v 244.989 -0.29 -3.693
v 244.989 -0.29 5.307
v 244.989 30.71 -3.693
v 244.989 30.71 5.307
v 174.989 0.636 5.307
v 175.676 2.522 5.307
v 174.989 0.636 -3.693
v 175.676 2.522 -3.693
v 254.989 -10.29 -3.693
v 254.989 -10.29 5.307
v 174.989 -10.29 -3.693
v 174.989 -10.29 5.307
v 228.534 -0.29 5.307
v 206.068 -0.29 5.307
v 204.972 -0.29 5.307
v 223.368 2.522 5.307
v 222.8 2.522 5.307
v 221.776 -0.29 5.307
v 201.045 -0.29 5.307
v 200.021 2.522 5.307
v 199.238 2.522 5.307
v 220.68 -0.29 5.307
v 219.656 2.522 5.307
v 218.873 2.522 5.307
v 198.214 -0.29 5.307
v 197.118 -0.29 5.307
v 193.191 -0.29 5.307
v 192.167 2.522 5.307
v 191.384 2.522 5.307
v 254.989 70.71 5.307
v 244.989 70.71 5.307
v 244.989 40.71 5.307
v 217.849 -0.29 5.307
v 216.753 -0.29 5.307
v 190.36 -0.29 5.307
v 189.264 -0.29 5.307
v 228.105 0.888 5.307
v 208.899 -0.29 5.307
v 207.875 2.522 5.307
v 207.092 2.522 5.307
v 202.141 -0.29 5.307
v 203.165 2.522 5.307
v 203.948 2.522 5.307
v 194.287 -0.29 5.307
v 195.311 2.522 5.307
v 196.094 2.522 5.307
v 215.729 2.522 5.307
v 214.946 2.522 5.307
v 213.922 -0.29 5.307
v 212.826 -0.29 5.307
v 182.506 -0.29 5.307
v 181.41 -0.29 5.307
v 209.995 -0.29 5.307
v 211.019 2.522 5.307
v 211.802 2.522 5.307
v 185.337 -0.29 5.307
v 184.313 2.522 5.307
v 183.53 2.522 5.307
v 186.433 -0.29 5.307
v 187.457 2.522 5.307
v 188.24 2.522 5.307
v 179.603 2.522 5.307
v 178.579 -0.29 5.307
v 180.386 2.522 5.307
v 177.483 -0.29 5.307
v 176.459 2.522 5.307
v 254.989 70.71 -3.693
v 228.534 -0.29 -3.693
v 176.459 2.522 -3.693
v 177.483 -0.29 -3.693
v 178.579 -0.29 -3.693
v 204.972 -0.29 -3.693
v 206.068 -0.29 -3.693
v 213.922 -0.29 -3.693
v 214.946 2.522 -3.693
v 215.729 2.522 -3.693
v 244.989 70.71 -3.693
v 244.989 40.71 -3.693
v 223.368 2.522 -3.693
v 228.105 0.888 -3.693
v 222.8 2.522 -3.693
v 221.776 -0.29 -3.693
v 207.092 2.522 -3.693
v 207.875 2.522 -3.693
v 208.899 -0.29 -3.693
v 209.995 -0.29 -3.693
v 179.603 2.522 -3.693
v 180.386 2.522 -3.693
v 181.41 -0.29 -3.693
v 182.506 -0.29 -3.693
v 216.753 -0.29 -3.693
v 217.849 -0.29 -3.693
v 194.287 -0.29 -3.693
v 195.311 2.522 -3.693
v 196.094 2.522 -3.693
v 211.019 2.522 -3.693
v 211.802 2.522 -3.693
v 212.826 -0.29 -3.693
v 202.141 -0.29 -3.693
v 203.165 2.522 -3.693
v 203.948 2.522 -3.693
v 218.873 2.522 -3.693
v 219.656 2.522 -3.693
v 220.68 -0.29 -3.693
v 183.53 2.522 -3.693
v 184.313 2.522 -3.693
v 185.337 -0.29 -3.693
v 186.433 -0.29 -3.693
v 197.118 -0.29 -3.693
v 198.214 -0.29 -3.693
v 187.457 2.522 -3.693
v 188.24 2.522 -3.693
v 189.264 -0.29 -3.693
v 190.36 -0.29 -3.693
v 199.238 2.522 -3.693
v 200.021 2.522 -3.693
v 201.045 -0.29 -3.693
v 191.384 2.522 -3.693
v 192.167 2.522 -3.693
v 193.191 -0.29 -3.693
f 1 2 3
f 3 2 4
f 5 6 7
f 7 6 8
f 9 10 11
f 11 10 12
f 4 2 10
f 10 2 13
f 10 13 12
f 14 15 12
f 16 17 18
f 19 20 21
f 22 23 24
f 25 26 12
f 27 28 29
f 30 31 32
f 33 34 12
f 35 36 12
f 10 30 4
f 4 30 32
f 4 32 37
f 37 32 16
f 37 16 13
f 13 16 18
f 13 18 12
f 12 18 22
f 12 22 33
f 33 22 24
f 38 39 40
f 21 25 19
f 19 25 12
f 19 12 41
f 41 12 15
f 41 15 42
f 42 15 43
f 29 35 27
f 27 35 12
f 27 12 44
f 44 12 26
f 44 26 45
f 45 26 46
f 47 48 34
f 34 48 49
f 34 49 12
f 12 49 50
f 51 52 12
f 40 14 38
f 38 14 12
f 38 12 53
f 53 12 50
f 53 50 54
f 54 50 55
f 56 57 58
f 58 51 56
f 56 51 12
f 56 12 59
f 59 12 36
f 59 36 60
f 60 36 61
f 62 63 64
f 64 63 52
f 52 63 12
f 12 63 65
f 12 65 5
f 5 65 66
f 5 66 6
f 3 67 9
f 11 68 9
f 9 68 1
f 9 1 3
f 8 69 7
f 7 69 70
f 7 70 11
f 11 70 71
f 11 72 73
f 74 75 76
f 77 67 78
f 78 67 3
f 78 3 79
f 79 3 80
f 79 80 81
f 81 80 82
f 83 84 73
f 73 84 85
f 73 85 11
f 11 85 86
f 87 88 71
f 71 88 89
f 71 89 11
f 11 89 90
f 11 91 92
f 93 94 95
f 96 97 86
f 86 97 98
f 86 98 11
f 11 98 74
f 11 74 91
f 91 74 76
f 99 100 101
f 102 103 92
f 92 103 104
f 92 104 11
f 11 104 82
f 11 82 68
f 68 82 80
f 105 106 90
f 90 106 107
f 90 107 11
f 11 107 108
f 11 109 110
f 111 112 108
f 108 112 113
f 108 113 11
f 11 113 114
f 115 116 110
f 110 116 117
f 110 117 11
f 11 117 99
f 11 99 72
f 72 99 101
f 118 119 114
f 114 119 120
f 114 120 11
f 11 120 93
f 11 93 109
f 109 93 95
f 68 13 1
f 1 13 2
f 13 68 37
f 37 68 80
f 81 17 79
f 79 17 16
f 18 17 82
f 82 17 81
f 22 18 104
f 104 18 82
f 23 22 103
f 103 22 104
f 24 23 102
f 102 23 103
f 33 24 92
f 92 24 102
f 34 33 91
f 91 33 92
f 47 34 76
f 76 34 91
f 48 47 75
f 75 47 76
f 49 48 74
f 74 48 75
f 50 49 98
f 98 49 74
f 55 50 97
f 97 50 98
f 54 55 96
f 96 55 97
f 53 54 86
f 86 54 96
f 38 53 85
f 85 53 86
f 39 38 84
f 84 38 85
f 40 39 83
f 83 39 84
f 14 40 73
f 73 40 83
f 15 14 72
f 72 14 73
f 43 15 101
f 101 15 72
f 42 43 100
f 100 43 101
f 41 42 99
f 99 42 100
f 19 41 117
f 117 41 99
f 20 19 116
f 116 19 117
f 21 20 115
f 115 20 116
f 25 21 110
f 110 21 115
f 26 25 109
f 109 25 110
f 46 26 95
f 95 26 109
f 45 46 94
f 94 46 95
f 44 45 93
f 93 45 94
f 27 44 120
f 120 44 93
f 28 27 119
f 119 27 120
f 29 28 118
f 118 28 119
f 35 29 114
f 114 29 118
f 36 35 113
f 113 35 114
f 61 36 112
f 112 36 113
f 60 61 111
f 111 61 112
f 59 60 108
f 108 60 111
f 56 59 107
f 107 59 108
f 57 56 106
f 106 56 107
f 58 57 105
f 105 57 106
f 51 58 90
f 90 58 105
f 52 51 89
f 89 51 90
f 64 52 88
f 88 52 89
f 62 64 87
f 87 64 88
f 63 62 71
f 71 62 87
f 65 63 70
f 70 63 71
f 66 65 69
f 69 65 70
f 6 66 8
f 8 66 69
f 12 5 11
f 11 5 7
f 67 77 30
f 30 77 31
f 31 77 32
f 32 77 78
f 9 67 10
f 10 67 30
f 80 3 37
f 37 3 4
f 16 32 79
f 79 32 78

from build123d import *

# Parameters (mm, degrees)
BOSS_EXTRUDE1_DEPTH      = 9
CUT_EXTRUDE3_START       = -75
SKETCH4_W                = 9
SKETCH4_H                = 12.8125
CUT_EXTRUDE3_DEPTH       = 426.134035175
BOSS_EXTRUDE2_DEPTH      = 5
BOSS_EXTRUDE2_DEPTH_BACK = 5
SKETCH5_W                = 9
SKETCH5_H                = 81
BOSS_EXTRUDE3_DEPTH      = 9
CUT_EXTRUDE4_DEPTH       = 10


with BuildPart() as part:
    # Sketch1 → Boss-Extrude1 (new body)
    with BuildSketch(Plane(origin=(0, 0, -3.69297844), x_dir=(-1, 0, 0), z_dir=(0, 0, -1))):
        Polygon((-247.145212992, 2.522278293), (-248.168879276, -0.290221707), (-249.2649677, -0.290221707), (-249.9890903, 1.699288787), (-249.9890903, -10.290221707), (250.0109097, -10.290221707), (250.0109097, -0.290221707), (249.462865488, -0.290221707), (248.439199204, 2.522278293), (247.655629383, 2.522278293), (246.631963099, -0.290221707), (245.535874675, -0.290221707), (244.512208391, 2.522278293), (243.728638571, 2.522278293), (242.704972287, -0.290221707), (241.608883863, -0.290221707), (240.585217579, 2.522278293), (239.801647758, 2.522278293), (238.777981474, -0.290221707), (237.68189305, -0.290221707), (236.658226766, 2.522278293), (235.874656946, 2.522278293), (234.850990662, -0.290221707), (233.754902238, -0.290221707), (232.731235954, 2.522278293), (231.947666133, 2.522278293), (230.923999849, -0.290221707), (229.827911425, -0.290221707), (228.804245141, 2.522278293), (228.020675321, 2.522278293), (226.997009037, -0.290221707), (225.900920613, -0.290221707), (224.877254329, 2.522278293), (224.093684508, 2.522278293), (223.070018224, -0.290221707), (221.9739298, -0.290221707), (220.950263516, 2.522278293), (220.166693696, 2.522278293), (219.143027412, -0.290221707), (218.046938988, -0.290221707), (217.023272704, 2.522278293), (216.239702883, 2.522278293), (215.216036599, -0.290221707), (214.119948175, -0.290221707), (213.096281891, 2.522278293), (212.312712071, 2.522278293), (211.289045787, -0.290221707), (210.192957363, -0.290221707), (209.169291079, 2.522278293), (208.385721258, 2.522278293), (207.362054974, -0.290221707), (206.26596655, -0.290221707), (205.242300266, 2.522278293), (204.458730446, 2.522278293), (203.435064162, -0.290221707), (202.338975738, -0.290221707), (201.315309454, 2.522278293), (200.531739633, 2.522278293), (199.508073349, -0.290221707), (198.411984925, -0.290221707), (197.388318641, 2.522278293), (196.604748821, 2.522278293), (195.581082537, -0.290221707), (194.484994113, -0.290221707), (193.461327829, 2.522278293), (192.677758008, 2.522278293), (191.654091724, -0.290221707), (190.5580033, -0.290221707), (189.534337016, 2.522278293), (188.750767196, 2.522278293), (187.727100912, -0.290221707), (186.631012488, -0.290221707), (185.607346204, 2.522278293), (184.823776383, 2.522278293), (183.800110099, -0.290221707), (182.704021675, -0.290221707), (181.680355391, 2.522278293), (180.896785571, 2.522278293), (179.873119287, -0.290221707), (178.777030863, -0.290221707), (177.753364579, 2.522278293), (176.969794758, 2.522278293), (175.946128474, -0.290221707), (174.85004005, -0.290221707), (173.826373766, 2.522278293), (173.042803946, 2.522278293), (172.019137662, -0.290221707), (170.923049238, -0.290221707), (169.899382954, 2.522278293), (169.115813133, 2.522278293), (168.092146849, -0.290221707), (166.996058425, -0.290221707), (165.972392141, 2.522278293), (165.188822321, 2.522278293), (164.165156037, -0.290221707), (163.069067613, -0.290221707), (162.045401329, 2.522278293), (161.261831508, 2.522278293), (160.238165224, -0.290221707), (159.1420768, -0.290221707), (158.118410516, 2.522278293), (157.334840696, 2.522278293), (156.311174412, -0.290221707), (155.215085988, -0.290221707), (154.191419704, 2.522278293), (153.407849883, 2.522278293), (152.384183599, -0.290221707), (151.288095175, -0.290221707), (150.264428891, 2.522278293), (149.480859071, 2.522278293), (148.457192787, -0.290221707), (147.361104363, -0.290221707), (146.337438079, 2.522278293), (145.553868258, 2.522278293), (144.530201974, -0.290221707), (143.43411355, -0.290221707), (142.410447266, 2.522278293), (141.626877446, 2.522278293), (140.603211162, -0.290221707), (139.507122738, -0.290221707), (138.483456454, 2.522278293), (137.699886633, 2.522278293), (136.676220349, -0.290221707), (135.580131925, -0.290221707), (134.556465641, 2.522278293), (133.772895821, 2.522278293), (132.749229537, -0.290221707), (131.653141113, -0.290221707), (130.629474829, 2.522278293), (129.845905008, 2.522278293), (128.822238724, -0.290221707), (127.7261503, -0.290221707), (126.702484016, 2.522278293), (125.918914196, 2.522278293), (124.895247912, -0.290221707), (123.799159488, -0.290221707), (122.775493204, 2.522278293), (121.991923383, 2.522278293), (120.968257099, -0.290221707), (119.872168675, -0.290221707), (118.848502391, 2.522278293), (118.064932571, 2.522278293), (117.041266287, -0.290221707), (115.945177863, -0.290221707), (114.921511579, 2.522278293), (114.137941758, 2.522278293), (113.114275474, -0.290221707), (112.01818705, -0.290221707), (110.994520766, 2.522278293), (110.210950946, 2.522278293), (109.187284662, -0.290221707), (108.091196238, -0.290221707), (107.067529954, 2.522278293), (106.283960133, 2.522278293), (105.260293849, -0.290221707), (104.164205425, -0.290221707), (103.140539141, 2.522278293), (102.356969321, 2.522278293), (101.333303037, -0.290221707), (100.237214613, -0.290221707), (99.213548329, 2.522278293), (98.429978508, 2.522278293), (97.406312224, -0.290221707), (96.3102238, -0.290221707), (95.286557516, 2.522278293), (94.502987696, 2.522278293), (93.479321412, -0.290221707), (92.383232988, -0.290221707), (91.359566704, 2.522278293), (90.575996883, 2.522278293), (89.552330599, -0.290221707), (88.456242175, -0.290221707), (87.432575891, 2.522278293), (86.649006071, 2.522278293), (85.625339787, -0.290221707), (84.529251363, -0.290221707), (83.505585079, 2.522278293), (82.722015258, 2.522278293), (81.698348974, -0.290221707), (80.60226055, -0.290221707), (79.578594266, 2.522278293), (78.795024446, 2.522278293), (77.771358162, -0.290221707), (76.675269738, -0.290221707), (75.651603454, 2.522278293), (74.868033633, 2.522278293), (73.844367349, -0.290221707), (72.748278925, -0.290221707), (71.724612641, 2.522278293), (70.941042821, 2.522278293), (69.917376537, -0.290221707), (68.821288113, -0.290221707), (67.797621829, 2.522278293), (67.014052008, 2.522278293), (65.990385724, -0.290221707), (64.8942973, -0.290221707), (63.870631016, 2.522278293), (63.087061196, 2.522278293), (62.063394912, -0.290221707), (60.967306488, -0.290221707), (59.943640204, 2.522278293), (59.160070383, 2.522278293), (58.136404099, -0.290221707), (57.040315675, -0.290221707), (56.016649391, 2.522278293), (55.233079571, 2.522278293), (54.209413287, -0.290221707), (53.113324863, -0.290221707), (52.089658579, 2.522278293), (51.306088758, 2.522278293), (50.282422474, -0.290221707), (49.18633405, -0.290221707), (48.162667766, 2.522278293), (47.379097946, 2.522278293), (46.355431662, -0.290221707), (45.259343238, -0.290221707), (44.235676954, 2.522278293), (43.452107133, 2.522278293), (42.428440849, -0.290221707), (41.332352425, -0.290221707), (40.308686141, 2.522278293), (39.525116321, 2.522278293), (38.501450037, -0.290221707), (37.405361613, -0.290221707), (36.381695329, 2.522278293), (35.598125508, 2.522278293), (34.574459224, -0.290221707), (33.4783708, -0.290221707), (32.454704516, 2.522278293), (31.671134696, 2.522278293), (30.647468412, -0.290221707), (29.551379988, -0.290221707), (28.527713704, 2.522278293), (27.744143883, 2.522278293), (26.720477599, -0.290221707), (25.624389175, -0.290221707), (24.600722891, 2.522278293), (23.817153071, 2.522278293), (22.793486787, -0.290221707), (21.697398363, -0.290221707), (20.673732079, 2.522278293), (19.890162258, 2.522278293), (18.866495974, -0.290221707), (17.77040755, -0.290221707), (16.746741266, 2.522278293), (15.963171446, 2.522278293), (14.939505162, -0.290221707), (13.843416738, -0.290221707), (12.819750454, 2.522278293), (12.036180633, 2.522278293), (11.012514349, -0.290221707), (9.916425925, -0.290221707), (8.892759641, 2.522278293), (8.109189821, 2.522278293), (7.085523537, -0.290221707), (5.989435113, -0.290221707), (4.965768829, 2.522278293), (4.182199008, 2.522278293), (3.158532724, -0.290221707), (2.0624443, -0.290221707), (1.038778016, 2.522278293), (0.255208196, 2.522278293), (-0.768458088, -0.290221707), (-1.864546512, -0.290221707), (-2.888212796, 2.522278293), (-3.671782617, 2.522278293), (-4.695448901, -0.290221707), (-5.791537325, -0.290221707), (-6.815203609, 2.522278293), (-7.598773429, 2.522278293), (-8.622439713, -0.290221707), (-9.718528137, -0.290221707), (-10.742194421, 2.522278293), (-11.525764242, 2.522278293), (-12.549430526, -0.290221707), (-13.64551895, -0.290221707), (-14.669185234, 2.522278293), (-15.452755054, 2.522278293), (-16.476421338, -0.290221707), (-17.572509762, -0.290221707), (-18.596176046, 2.522278293), (-19.379745867, 2.522278293), (-20.403412151, -0.290221707), (-21.499500575, -0.290221707), (-22.523166859, 2.522278293), (-23.306736679, 2.522278293), (-24.330402963, -0.290221707), (-25.426491387, -0.290221707), (-26.450157671, 2.522278293), (-27.233727492, 2.522278293), (-28.257393776, -0.290221707), (-29.3534822, -0.290221707), (-30.377148484, 2.522278293), (-31.160718304, 2.522278293), (-32.184384588, -0.290221707), (-33.280473012, -0.290221707), (-34.304139296, 2.522278293), (-35.087709117, 2.522278293), (-36.111375401, -0.290221707), (-37.207463825, -0.290221707), (-38.231130109, 2.522278293), (-39.014699929, 2.522278293), (-40.038366213, -0.290221707), (-41.134454637, -0.290221707), (-42.158120921, 2.522278293), (-42.941690742, 2.522278293), (-43.965357026, -0.290221707), (-45.06144545, -0.290221707), (-46.085111734, 2.522278293), (-46.868681554, 2.522278293), (-47.892347838, -0.290221707), (-48.988436262, -0.290221707), (-50.012102546, 2.522278293), (-50.795672367, 2.522278293), (-51.819338651, -0.290221707), (-52.915427075, -0.290221707), (-53.939093359, 2.522278293), (-54.722663179, 2.522278293), (-55.746329463, -0.290221707), (-56.842417887, -0.290221707), (-57.866084171, 2.522278293), (-58.649653992, 2.522278293), (-59.673320276, -0.290221707), (-60.7694087, -0.290221707), (-61.793074984, 2.522278293), (-62.576644804, 2.522278293), (-63.600311088, -0.290221707), (-64.696399512, -0.290221707), (-65.720065796, 2.522278293), (-66.503635617, 2.522278293), (-67.527301901, -0.290221707), (-68.623390325, -0.290221707), (-69.647056609, 2.522278293), (-70.430626429, 2.522278293), (-71.454292713, -0.290221707), (-72.550381137, -0.290221707), (-73.574047421, 2.522278293), (-74.357617242, 2.522278293), (-75.381283526, -0.290221707), (-76.47737195, -0.290221707), (-77.501038234, 2.522278293), (-78.284608054, 2.522278293), (-79.308274338, -0.290221707), (-80.404362762, -0.290221707), (-81.428029046, 2.522278293), (-82.211598867, 2.522278293), (-83.235265151, -0.290221707), (-84.331353575, -0.290221707), (-85.355019859, 2.522278293), (-86.138589679, 2.522278293), (-87.162255963, -0.290221707), (-88.258344387, -0.290221707), (-89.282010671, 2.522278293), (-90.065580492, 2.522278293), (-91.089246776, -0.290221707), (-92.1853352, -0.290221707), (-93.209001484, 2.522278293), (-93.992571304, 2.522278293), (-95.016237588, -0.290221707), (-96.112326012, -0.290221707), (-97.135992296, 2.522278293), (-97.919562117, 2.522278293), (-98.943228401, -0.290221707), (-100.039316825, -0.290221707), (-101.062983109, 2.522278293), (-101.846552929, 2.522278293), (-102.870219213, -0.290221707), (-103.966307637, -0.290221707), (-104.989973921, 2.522278293), (-105.773543742, 2.522278293), (-106.797210026, -0.290221707), (-107.89329845, -0.290221707), (-108.916964734, 2.522278293), (-109.700534554, 2.522278293), (-110.724200838, -0.290221707), (-111.820289262, -0.290221707), (-112.843955546, 2.522278293), (-113.627525367, 2.522278293), (-114.651191651, -0.290221707), (-115.747280075, -0.290221707), (-116.770946359, 2.522278293), (-117.554516179, 2.522278293), (-118.578182463, -0.290221707), (-119.674270887, -0.290221707), (-120.697937171, 2.522278293), (-121.481506992, 2.522278293), (-122.505173276, -0.290221707), (-123.6012617, -0.290221707), (-124.624927984, 2.522278293), (-125.408497804, 2.522278293), (-126.432164088, -0.290221707), (-127.528252512, -0.290221707), (-128.551918796, 2.522278293), (-129.335488617, 2.522278293), (-130.359154901, -0.290221707), (-131.455243325, -0.290221707), (-132.478909609, 2.522278293), (-133.262479429, 2.522278293), (-134.286145713, -0.290221707), (-135.382234137, -0.290221707), (-136.405900421, 2.522278293), (-137.189470242, 2.522278293), (-138.213136526, -0.290221707), (-139.30922495, -0.290221707), (-140.332891234, 2.522278293), (-141.116461054, 2.522278293), (-142.140127338, -0.290221707), (-143.236215762, -0.290221707), (-144.259882046, 2.522278293), (-145.043451867, 2.522278293), (-146.067118151, -0.290221707), (-147.163206575, -0.290221707), (-148.186872859, 2.522278293), (-148.970442679, 2.522278293), (-149.994108963, -0.290221707), (-151.090197387, -0.290221707), (-152.113863671, 2.522278293), (-152.897433492, 2.522278293), (-153.921099776, -0.290221707), (-155.0171882, -0.290221707), (-156.040854484, 2.522278293), (-156.824424304, 2.522278293), (-157.848090588, -0.290221707), (-158.944179012, -0.290221707), (-159.967845296, 2.522278293), (-160.751415117, 2.522278293), (-161.775081401, -0.290221707), (-162.871169825, -0.290221707), (-163.894836109, 2.522278293), (-164.678405929, 2.522278293), (-165.702072213, -0.290221707), (-166.798160637, -0.290221707), (-167.821826921, 2.522278293), (-168.605396742, 2.522278293), (-169.629063026, -0.290221707), (-170.72515145, -0.290221707), (-171.748817734, 2.522278293), (-172.532387554, 2.522278293), (-173.556053838, -0.290221707), (-174.652142262, -0.290221707), (-175.675808546, 2.522278293), (-176.459378367, 2.522278293), (-177.483044651, -0.290221707), (-178.579133075, -0.290221707), (-179.602799359, 2.522278293), (-180.386369179, 2.522278293), (-181.410035463, -0.290221707), (-182.506123887, -0.290221707), (-183.529790171, 2.522278293), (-184.313359992, 2.522278293), (-185.337026276, -0.290221707), (-186.4331147, -0.290221707), (-187.456780984, 2.522278293), (-188.240350804, 2.522278293), (-189.264017088, -0.290221707), (-190.360105512, -0.290221707), (-191.383771796, 2.522278293), (-192.167341617, 2.522278293), (-193.191007901, -0.290221707), (-194.287096325, -0.290221707), (-195.310762609, 2.522278293), (-196.094332429, 2.522278293), (-197.117998713, -0.290221707), (-198.214087137, -0.290221707), (-199.237753421, 2.522278293), (-200.021323242, 2.522278293), (-201.044989526, -0.290221707), (-202.14107795, -0.290221707), (-203.164744234, 2.522278293), (-203.948314054, 2.522278293), (-204.971980338, -0.290221707), (-206.068068762, -0.290221707), (-207.091735046, 2.522278293), (-207.875304867, 2.522278293), (-208.898971151, -0.290221707), (-209.995059575, -0.290221707), (-211.018725859, 2.522278293), (-211.802295679, 2.522278293), (-212.825961963, -0.290221707), (-213.922050387, -0.290221707), (-214.945716671, 2.522278293), (-215.729286492, 2.522278293), (-216.752952776, -0.290221707), (-217.8490412, -0.290221707), (-218.872707484, 2.522278293), (-219.656277304, 2.522278293), (-220.679943588, -0.290221707), (-221.776032012, -0.290221707), (-222.799698296, 2.522278293), (-223.583268117, 2.522278293), (-224.606934401, -0.290221707), (-225.703022825, -0.290221707), (-226.726689109, 2.522278293), (-227.510258929, 2.522278293), (-228.533925213, -0.290221707), (-229.630013637, -0.290221707), (-230.653679921, 2.522278293), (-231.437249742, 2.522278293), (-232.460916026, -0.290221707), (-233.55700445, -0.290221707), (-234.580670734, 2.522278293), (-235.364240554, 2.522278293), (-236.387906838, -0.290221707), (-237.483995262, -0.290221707), (-238.507661546, 2.522278293), (-239.291231367, 2.522278293), (-240.314897651, -0.290221707), (-241.410986075, -0.290221707), (-242.434652359, 2.522278293), (-243.218222179, 2.522278293), (-244.241888463, -0.290221707), (-245.337976887, -0.290221707), (-246.361643171, 2.522278293), align=None)
    extrude(amount=-BOSS_EXTRUDE1_DEPTH)

    # Sketch4 → Cut-Extrude3 (cut, through all)
    with BuildSketch(Plane(origin=(249.9890903, 0, 0), x_dir=(0, 0, -1), z_dir=(1, 0, 0)).offset(CUT_EXTRUDE3_START)):
        with Locations((-0.80702156, -3.883971707)):
            Rectangle(SKETCH4_W, SKETCH4_H)
    extrude(amount=-CUT_EXTRUDE3_DEPTH, mode=Mode.SUBTRACT)

    # Sketch5 → Boss-Extrude2 (add, two sides: drawn at the far end of the back side and taken through both)
    with BuildSketch(Plane(origin=(249.9890903, 0, 0), x_dir=(0, 0, -1), z_dir=(1, 0, 0)).offset(-BOSS_EXTRUDE2_DEPTH_BACK)):
        with Locations((-0.80702156, 30.209778293)):
            Rectangle(SKETCH5_W, SKETCH5_H)
    extrude(amount=BOSS_EXTRUDE2_DEPTH + BOSS_EXTRUDE2_DEPTH_BACK)

    # Sketch6 → Boss-Extrude3 (add)
    with BuildSketch(Plane(origin=(0, 0, -3.69297844), x_dir=(-1, 0, 0), z_dir=(0, 0, -1))):
        Polygon((-221.776032012, -0.290221707), (-244.9890903, 40.709778293), (-244.9890903, 30.709778293), (-226.296912319, -2.305229368), align=None)
    extrude(amount=-BOSS_EXTRUDE3_DEPTH)

    # Sketch7 → Cut-Extrude4 (cut)
    with BuildSketch(Plane(origin=(0, 0, -3.69297844), x_dir=(-1, 0, 0), z_dir=(0, 0, -1))):
        Polygon((-230.653679921, 2.522278293), (-229.630013637, -0.290221707), (-230.653679921, -0.290221707), (-244.9890903, -0.290221707), (-244.9890903, 2.522278293), align=None)
    extrude(amount=-CUT_EXTRUDE4_DEPTH, mode=Mode.SUBTRACT)


solid = part.part
